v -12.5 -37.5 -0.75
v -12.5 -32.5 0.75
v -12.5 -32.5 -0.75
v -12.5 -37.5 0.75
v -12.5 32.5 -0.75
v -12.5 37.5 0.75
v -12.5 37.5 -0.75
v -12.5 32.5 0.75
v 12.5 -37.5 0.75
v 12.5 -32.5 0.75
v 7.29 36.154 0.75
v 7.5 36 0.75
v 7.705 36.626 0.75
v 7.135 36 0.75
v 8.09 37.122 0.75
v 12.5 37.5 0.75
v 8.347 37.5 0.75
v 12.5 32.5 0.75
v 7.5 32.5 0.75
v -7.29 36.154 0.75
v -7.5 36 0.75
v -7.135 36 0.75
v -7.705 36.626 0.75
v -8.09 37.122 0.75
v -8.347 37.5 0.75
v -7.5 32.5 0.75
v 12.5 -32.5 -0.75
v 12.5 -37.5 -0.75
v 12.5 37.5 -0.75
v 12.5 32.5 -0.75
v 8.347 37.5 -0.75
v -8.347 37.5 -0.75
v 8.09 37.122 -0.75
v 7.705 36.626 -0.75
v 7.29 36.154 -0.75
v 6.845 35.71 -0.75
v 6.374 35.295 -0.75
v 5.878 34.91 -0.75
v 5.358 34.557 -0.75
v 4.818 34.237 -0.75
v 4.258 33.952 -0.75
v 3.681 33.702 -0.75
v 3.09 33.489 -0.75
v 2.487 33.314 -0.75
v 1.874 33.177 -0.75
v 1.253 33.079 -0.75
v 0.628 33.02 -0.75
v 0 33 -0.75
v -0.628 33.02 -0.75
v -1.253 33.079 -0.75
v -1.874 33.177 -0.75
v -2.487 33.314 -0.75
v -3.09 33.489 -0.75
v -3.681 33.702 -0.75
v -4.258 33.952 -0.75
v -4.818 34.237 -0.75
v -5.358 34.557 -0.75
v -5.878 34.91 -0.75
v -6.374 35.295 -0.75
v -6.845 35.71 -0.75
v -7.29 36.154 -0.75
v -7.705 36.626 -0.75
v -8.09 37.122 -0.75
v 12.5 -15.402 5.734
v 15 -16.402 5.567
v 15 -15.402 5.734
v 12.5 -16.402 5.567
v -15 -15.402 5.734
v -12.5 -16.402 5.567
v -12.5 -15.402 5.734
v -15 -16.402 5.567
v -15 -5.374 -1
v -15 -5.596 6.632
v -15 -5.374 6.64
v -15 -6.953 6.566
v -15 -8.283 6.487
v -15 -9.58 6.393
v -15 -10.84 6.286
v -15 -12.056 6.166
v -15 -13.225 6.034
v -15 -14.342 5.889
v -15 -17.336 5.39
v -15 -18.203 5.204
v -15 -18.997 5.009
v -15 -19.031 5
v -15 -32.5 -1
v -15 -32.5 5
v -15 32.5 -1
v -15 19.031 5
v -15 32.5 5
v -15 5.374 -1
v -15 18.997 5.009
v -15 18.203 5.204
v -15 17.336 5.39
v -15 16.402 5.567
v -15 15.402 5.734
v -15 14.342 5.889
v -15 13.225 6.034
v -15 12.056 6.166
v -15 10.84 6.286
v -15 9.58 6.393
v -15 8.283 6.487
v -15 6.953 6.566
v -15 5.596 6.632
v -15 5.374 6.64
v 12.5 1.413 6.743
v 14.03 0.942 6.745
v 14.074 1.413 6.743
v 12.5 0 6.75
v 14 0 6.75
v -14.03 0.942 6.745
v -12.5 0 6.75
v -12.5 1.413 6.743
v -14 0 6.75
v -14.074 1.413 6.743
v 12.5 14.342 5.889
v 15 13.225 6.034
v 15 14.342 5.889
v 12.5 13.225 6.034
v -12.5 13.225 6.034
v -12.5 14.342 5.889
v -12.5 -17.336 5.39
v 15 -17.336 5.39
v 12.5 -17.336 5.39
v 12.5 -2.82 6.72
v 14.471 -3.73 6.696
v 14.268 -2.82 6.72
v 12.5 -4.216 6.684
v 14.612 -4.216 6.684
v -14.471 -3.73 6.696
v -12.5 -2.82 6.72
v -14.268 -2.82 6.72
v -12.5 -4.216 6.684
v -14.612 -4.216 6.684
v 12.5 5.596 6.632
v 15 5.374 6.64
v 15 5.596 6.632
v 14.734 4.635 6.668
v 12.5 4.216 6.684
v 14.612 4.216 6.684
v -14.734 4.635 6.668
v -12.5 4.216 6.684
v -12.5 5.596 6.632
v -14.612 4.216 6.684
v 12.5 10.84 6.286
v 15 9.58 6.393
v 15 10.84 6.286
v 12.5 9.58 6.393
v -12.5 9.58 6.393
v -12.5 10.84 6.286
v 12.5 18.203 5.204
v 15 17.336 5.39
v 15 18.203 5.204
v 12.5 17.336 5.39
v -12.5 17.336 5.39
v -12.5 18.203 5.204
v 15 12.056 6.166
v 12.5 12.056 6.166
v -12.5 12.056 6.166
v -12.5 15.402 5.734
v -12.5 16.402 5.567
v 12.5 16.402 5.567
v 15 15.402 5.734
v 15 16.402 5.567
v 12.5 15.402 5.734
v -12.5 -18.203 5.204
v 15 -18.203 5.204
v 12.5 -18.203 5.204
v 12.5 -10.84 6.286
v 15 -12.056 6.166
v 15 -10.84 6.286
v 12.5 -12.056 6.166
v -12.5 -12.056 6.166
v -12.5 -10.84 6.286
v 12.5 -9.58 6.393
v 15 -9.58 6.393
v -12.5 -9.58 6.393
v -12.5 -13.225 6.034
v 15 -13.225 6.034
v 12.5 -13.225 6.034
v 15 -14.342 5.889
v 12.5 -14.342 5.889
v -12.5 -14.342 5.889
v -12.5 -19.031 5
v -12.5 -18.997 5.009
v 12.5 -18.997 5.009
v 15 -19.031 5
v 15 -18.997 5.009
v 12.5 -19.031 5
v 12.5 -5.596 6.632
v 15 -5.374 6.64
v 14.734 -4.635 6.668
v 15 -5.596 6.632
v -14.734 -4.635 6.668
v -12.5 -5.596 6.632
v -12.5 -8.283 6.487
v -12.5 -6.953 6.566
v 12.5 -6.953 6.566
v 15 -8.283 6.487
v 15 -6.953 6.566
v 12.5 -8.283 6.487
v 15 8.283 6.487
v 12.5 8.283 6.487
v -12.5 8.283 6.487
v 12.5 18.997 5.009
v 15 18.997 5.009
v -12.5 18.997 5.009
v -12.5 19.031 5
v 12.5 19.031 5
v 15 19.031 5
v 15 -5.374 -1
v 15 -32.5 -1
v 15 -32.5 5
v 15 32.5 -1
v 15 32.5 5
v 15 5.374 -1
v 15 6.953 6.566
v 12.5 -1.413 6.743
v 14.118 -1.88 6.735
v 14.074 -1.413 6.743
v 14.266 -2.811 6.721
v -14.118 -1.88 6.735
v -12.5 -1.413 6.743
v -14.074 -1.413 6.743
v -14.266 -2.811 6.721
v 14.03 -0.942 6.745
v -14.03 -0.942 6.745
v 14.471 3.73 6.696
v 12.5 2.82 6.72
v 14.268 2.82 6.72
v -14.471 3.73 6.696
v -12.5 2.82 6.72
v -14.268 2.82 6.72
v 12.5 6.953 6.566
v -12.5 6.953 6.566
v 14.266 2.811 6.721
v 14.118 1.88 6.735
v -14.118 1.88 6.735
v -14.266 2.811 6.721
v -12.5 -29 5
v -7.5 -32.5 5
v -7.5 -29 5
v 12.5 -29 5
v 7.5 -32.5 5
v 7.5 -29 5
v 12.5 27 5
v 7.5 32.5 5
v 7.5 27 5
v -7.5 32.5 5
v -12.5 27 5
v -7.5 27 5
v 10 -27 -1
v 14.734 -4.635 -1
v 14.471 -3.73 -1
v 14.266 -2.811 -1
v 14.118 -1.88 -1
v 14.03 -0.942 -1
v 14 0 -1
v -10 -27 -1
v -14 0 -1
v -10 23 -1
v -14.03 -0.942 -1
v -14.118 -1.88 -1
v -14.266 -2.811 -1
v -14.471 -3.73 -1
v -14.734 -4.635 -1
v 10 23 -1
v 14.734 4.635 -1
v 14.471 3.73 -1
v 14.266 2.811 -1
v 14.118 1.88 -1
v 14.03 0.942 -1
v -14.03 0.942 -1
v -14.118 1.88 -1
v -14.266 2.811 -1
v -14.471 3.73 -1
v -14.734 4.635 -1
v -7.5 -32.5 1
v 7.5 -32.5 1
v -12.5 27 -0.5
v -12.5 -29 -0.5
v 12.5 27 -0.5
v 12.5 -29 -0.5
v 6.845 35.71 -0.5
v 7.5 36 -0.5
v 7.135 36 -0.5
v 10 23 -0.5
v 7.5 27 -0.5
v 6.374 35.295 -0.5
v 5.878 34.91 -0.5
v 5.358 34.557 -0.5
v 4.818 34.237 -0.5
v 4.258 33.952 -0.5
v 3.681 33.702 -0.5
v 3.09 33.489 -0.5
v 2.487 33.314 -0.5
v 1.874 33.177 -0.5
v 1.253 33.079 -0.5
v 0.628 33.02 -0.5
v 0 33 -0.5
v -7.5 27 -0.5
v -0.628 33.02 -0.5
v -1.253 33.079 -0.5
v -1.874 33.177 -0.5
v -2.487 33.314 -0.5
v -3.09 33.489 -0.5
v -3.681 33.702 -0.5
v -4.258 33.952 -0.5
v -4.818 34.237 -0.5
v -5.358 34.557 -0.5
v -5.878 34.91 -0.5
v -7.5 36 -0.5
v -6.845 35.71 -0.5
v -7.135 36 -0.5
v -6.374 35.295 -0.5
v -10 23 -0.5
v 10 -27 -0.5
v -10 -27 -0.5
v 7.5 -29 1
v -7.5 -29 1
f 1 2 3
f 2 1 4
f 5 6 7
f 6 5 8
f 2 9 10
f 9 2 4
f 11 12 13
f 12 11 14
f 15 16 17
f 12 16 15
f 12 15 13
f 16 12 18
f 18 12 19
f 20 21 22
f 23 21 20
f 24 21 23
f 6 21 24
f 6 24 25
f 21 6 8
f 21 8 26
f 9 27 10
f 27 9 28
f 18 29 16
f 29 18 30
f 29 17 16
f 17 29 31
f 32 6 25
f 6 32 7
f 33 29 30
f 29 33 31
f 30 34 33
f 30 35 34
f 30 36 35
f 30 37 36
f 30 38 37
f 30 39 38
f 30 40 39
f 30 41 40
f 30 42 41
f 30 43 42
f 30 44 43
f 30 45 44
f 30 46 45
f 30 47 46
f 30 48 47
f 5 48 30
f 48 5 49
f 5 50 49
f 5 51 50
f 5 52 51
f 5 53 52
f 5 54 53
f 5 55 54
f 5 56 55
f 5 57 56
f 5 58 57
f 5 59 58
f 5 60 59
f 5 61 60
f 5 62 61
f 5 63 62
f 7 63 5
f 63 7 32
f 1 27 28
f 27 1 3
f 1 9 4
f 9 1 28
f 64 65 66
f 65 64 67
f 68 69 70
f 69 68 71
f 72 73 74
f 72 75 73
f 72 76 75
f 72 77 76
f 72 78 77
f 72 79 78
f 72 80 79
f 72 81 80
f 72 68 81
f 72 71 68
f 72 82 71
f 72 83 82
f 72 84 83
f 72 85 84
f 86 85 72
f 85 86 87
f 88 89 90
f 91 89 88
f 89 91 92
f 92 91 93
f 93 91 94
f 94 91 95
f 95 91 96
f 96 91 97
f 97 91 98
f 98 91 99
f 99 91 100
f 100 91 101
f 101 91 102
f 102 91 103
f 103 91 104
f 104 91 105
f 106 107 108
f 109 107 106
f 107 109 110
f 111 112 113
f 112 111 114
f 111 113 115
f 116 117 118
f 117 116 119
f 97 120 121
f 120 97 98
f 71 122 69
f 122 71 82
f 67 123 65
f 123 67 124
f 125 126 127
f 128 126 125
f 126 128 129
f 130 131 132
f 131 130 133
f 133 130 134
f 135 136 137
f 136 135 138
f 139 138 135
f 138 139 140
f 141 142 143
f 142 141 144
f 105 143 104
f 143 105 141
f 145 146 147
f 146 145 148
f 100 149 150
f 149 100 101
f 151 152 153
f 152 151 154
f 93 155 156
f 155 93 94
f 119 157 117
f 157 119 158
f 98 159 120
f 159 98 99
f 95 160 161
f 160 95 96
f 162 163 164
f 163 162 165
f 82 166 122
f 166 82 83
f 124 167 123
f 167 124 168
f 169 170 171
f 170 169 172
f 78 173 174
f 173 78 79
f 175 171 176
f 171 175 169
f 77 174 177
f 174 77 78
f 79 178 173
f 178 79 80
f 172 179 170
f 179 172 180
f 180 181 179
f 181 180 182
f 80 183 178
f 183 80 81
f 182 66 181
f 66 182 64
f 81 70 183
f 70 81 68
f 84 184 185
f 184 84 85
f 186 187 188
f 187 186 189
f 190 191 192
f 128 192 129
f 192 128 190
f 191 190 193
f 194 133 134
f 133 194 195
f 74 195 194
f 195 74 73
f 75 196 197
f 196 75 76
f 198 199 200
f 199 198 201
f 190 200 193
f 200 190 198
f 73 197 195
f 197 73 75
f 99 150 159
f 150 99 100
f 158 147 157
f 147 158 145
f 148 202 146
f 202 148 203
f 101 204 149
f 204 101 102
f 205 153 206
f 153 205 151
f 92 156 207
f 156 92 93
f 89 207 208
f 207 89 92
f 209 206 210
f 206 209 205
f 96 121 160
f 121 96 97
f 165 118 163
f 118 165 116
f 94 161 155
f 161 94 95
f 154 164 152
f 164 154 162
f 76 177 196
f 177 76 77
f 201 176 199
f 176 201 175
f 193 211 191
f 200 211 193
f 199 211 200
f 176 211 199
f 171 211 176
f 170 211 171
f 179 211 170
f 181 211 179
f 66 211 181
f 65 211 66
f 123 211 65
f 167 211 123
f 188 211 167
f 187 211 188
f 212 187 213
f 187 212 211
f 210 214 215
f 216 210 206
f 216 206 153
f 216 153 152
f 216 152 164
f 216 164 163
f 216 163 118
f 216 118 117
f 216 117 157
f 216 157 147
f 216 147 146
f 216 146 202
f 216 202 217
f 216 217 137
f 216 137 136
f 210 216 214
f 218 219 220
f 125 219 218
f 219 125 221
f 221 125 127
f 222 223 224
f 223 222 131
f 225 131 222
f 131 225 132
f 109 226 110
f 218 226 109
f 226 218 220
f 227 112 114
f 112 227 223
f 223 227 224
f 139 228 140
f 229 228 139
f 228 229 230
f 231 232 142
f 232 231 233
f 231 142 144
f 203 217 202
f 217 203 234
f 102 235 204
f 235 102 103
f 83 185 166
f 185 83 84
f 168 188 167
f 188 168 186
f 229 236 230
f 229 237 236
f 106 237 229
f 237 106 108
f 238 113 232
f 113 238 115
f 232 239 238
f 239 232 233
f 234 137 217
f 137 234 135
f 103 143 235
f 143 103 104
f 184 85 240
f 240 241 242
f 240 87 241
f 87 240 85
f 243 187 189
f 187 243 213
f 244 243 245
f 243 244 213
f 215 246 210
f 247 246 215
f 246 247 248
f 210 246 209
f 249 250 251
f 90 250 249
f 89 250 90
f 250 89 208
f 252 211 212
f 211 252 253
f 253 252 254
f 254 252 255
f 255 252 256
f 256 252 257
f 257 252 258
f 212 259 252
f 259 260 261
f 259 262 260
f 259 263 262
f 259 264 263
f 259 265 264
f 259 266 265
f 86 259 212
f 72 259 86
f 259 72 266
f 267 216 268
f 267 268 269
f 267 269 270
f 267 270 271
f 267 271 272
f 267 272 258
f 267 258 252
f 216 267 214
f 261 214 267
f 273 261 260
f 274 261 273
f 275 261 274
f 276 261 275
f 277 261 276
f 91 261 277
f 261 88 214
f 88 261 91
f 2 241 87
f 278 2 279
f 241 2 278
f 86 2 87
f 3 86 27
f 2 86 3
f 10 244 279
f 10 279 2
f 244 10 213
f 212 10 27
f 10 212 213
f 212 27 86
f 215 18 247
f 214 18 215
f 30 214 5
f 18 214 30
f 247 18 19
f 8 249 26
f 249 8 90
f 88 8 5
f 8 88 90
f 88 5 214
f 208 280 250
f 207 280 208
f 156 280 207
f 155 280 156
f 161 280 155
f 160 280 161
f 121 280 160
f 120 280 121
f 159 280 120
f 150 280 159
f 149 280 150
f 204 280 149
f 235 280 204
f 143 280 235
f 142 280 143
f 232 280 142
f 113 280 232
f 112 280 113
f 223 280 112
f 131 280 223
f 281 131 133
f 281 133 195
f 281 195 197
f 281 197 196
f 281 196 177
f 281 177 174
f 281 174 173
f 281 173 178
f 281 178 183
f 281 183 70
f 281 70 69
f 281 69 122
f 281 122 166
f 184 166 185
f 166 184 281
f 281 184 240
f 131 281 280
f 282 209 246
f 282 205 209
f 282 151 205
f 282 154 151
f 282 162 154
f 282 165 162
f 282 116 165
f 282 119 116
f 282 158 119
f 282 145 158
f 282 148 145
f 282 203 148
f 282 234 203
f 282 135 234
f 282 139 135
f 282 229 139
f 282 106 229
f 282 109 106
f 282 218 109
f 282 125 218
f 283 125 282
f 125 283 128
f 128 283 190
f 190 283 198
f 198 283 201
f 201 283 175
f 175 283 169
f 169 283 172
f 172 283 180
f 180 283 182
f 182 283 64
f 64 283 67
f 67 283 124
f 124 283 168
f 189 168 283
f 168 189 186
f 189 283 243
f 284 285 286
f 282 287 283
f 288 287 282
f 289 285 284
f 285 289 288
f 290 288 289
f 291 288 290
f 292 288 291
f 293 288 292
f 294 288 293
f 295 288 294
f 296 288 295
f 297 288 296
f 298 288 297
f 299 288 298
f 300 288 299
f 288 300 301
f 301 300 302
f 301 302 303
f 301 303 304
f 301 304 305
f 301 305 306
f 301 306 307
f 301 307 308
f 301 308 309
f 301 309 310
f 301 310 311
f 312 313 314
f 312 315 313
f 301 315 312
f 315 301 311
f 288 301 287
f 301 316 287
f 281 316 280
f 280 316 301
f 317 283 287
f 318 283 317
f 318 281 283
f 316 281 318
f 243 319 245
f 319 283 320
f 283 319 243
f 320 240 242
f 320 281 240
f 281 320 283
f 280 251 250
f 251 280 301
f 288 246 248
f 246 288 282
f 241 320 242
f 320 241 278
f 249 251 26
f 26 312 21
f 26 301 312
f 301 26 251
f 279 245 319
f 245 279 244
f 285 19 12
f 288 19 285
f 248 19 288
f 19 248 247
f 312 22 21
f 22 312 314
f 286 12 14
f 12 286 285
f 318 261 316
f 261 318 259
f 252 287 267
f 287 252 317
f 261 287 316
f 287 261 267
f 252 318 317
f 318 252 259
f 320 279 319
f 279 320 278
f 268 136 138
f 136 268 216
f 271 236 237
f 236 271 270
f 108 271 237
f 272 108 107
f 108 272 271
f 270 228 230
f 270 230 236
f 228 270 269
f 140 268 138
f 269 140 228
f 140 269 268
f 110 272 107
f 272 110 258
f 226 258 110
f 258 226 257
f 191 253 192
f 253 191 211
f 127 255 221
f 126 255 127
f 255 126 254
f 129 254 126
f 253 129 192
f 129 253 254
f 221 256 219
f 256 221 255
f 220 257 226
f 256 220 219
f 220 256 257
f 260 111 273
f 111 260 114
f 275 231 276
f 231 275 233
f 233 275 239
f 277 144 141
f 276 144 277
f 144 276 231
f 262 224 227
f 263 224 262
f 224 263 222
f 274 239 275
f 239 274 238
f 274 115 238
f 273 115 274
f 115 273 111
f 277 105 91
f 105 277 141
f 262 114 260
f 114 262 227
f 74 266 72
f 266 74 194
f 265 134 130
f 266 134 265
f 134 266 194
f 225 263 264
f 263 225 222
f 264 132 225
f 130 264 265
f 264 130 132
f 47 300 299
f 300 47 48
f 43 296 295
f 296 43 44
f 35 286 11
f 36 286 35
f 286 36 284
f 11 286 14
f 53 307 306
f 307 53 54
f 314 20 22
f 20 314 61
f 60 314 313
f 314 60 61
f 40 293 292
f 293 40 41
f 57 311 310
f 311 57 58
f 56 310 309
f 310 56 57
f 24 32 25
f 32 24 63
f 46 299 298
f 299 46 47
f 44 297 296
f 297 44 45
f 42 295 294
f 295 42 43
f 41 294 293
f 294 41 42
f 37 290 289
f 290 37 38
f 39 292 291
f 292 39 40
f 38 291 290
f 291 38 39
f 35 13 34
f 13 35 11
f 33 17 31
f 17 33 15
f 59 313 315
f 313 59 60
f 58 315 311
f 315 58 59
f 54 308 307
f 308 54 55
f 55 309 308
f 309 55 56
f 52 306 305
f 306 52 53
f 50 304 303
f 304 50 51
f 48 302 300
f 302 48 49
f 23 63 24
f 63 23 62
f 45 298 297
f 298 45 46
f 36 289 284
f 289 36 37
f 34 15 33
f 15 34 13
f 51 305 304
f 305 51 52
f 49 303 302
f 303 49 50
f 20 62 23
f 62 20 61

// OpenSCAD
$fn=100;

include_lattice = false; // a lattice can help with support but it is more annoying to move between wells with an immersion objective

difference() {
  
    // Main body
    union() {
       cube([25,75,1.5],true);                    
       translate([-15,0,3]) rotate([0,90,0]) scale([0.25, 1.5, 1]) cylinder(30,15,15);
       translate([0,0,2]) cube([30,65,6],true);
    }
    
    //cut out gaps at ends
    translate([0,0,3.5]) cube([15,75,5],true);

//    // bevelled base - can help for small working distance objectives but overhangs are more difficult to print
//    translate([0,0,-3]) hull() {
//        translate([0,0,0]) cube([50,85,1],true); // Bottom dims
//        translate([0,0,2]) cube([20,50,1],true); // Top dims
//    }
    
    // finger grips
    translate([29,0,0]) cylinder(15,15,15,true);
    translate([-29,0,0]) cylinder(15,15,15,true);
    translate([0,43,0]) cylinder(10,10,10,true); // end grip
    
    //labtek imprinter - 25 x 63
    
    color([0,1,0,0.5]) translate([-12.5,-29,-0.5]) union() {
        // main well for LabTek - should match chamber size + tolerance
        cube([25,56,12]);
        // annoying tab
        translate([5,55,0]) cube([15,10,8]);   
       
        if (include_lattice) {
        // viewing hole lattice
        translate([2.5,2,-5]) {
            translate([0,39,0]) cube([9,11,10]);
            translate([0,26,0]) cube([9,11,10]);
            translate([0,13,0]) cube([9,11,10]);
            translate([0,0,0]) cube([9,11,10]);
            
            translate([11,39,0]) cube([9,11,10]);
            translate([11,26,0]) cube([9,11,10]);
            translate([11,13,0]) cube([9,11,10]);
            translate([11,0,0]) cube([9,11,10]);
        }
    } else {
        translate([2.5,2,-5]) cube([20,50,10]);
        
        }
    }
}
